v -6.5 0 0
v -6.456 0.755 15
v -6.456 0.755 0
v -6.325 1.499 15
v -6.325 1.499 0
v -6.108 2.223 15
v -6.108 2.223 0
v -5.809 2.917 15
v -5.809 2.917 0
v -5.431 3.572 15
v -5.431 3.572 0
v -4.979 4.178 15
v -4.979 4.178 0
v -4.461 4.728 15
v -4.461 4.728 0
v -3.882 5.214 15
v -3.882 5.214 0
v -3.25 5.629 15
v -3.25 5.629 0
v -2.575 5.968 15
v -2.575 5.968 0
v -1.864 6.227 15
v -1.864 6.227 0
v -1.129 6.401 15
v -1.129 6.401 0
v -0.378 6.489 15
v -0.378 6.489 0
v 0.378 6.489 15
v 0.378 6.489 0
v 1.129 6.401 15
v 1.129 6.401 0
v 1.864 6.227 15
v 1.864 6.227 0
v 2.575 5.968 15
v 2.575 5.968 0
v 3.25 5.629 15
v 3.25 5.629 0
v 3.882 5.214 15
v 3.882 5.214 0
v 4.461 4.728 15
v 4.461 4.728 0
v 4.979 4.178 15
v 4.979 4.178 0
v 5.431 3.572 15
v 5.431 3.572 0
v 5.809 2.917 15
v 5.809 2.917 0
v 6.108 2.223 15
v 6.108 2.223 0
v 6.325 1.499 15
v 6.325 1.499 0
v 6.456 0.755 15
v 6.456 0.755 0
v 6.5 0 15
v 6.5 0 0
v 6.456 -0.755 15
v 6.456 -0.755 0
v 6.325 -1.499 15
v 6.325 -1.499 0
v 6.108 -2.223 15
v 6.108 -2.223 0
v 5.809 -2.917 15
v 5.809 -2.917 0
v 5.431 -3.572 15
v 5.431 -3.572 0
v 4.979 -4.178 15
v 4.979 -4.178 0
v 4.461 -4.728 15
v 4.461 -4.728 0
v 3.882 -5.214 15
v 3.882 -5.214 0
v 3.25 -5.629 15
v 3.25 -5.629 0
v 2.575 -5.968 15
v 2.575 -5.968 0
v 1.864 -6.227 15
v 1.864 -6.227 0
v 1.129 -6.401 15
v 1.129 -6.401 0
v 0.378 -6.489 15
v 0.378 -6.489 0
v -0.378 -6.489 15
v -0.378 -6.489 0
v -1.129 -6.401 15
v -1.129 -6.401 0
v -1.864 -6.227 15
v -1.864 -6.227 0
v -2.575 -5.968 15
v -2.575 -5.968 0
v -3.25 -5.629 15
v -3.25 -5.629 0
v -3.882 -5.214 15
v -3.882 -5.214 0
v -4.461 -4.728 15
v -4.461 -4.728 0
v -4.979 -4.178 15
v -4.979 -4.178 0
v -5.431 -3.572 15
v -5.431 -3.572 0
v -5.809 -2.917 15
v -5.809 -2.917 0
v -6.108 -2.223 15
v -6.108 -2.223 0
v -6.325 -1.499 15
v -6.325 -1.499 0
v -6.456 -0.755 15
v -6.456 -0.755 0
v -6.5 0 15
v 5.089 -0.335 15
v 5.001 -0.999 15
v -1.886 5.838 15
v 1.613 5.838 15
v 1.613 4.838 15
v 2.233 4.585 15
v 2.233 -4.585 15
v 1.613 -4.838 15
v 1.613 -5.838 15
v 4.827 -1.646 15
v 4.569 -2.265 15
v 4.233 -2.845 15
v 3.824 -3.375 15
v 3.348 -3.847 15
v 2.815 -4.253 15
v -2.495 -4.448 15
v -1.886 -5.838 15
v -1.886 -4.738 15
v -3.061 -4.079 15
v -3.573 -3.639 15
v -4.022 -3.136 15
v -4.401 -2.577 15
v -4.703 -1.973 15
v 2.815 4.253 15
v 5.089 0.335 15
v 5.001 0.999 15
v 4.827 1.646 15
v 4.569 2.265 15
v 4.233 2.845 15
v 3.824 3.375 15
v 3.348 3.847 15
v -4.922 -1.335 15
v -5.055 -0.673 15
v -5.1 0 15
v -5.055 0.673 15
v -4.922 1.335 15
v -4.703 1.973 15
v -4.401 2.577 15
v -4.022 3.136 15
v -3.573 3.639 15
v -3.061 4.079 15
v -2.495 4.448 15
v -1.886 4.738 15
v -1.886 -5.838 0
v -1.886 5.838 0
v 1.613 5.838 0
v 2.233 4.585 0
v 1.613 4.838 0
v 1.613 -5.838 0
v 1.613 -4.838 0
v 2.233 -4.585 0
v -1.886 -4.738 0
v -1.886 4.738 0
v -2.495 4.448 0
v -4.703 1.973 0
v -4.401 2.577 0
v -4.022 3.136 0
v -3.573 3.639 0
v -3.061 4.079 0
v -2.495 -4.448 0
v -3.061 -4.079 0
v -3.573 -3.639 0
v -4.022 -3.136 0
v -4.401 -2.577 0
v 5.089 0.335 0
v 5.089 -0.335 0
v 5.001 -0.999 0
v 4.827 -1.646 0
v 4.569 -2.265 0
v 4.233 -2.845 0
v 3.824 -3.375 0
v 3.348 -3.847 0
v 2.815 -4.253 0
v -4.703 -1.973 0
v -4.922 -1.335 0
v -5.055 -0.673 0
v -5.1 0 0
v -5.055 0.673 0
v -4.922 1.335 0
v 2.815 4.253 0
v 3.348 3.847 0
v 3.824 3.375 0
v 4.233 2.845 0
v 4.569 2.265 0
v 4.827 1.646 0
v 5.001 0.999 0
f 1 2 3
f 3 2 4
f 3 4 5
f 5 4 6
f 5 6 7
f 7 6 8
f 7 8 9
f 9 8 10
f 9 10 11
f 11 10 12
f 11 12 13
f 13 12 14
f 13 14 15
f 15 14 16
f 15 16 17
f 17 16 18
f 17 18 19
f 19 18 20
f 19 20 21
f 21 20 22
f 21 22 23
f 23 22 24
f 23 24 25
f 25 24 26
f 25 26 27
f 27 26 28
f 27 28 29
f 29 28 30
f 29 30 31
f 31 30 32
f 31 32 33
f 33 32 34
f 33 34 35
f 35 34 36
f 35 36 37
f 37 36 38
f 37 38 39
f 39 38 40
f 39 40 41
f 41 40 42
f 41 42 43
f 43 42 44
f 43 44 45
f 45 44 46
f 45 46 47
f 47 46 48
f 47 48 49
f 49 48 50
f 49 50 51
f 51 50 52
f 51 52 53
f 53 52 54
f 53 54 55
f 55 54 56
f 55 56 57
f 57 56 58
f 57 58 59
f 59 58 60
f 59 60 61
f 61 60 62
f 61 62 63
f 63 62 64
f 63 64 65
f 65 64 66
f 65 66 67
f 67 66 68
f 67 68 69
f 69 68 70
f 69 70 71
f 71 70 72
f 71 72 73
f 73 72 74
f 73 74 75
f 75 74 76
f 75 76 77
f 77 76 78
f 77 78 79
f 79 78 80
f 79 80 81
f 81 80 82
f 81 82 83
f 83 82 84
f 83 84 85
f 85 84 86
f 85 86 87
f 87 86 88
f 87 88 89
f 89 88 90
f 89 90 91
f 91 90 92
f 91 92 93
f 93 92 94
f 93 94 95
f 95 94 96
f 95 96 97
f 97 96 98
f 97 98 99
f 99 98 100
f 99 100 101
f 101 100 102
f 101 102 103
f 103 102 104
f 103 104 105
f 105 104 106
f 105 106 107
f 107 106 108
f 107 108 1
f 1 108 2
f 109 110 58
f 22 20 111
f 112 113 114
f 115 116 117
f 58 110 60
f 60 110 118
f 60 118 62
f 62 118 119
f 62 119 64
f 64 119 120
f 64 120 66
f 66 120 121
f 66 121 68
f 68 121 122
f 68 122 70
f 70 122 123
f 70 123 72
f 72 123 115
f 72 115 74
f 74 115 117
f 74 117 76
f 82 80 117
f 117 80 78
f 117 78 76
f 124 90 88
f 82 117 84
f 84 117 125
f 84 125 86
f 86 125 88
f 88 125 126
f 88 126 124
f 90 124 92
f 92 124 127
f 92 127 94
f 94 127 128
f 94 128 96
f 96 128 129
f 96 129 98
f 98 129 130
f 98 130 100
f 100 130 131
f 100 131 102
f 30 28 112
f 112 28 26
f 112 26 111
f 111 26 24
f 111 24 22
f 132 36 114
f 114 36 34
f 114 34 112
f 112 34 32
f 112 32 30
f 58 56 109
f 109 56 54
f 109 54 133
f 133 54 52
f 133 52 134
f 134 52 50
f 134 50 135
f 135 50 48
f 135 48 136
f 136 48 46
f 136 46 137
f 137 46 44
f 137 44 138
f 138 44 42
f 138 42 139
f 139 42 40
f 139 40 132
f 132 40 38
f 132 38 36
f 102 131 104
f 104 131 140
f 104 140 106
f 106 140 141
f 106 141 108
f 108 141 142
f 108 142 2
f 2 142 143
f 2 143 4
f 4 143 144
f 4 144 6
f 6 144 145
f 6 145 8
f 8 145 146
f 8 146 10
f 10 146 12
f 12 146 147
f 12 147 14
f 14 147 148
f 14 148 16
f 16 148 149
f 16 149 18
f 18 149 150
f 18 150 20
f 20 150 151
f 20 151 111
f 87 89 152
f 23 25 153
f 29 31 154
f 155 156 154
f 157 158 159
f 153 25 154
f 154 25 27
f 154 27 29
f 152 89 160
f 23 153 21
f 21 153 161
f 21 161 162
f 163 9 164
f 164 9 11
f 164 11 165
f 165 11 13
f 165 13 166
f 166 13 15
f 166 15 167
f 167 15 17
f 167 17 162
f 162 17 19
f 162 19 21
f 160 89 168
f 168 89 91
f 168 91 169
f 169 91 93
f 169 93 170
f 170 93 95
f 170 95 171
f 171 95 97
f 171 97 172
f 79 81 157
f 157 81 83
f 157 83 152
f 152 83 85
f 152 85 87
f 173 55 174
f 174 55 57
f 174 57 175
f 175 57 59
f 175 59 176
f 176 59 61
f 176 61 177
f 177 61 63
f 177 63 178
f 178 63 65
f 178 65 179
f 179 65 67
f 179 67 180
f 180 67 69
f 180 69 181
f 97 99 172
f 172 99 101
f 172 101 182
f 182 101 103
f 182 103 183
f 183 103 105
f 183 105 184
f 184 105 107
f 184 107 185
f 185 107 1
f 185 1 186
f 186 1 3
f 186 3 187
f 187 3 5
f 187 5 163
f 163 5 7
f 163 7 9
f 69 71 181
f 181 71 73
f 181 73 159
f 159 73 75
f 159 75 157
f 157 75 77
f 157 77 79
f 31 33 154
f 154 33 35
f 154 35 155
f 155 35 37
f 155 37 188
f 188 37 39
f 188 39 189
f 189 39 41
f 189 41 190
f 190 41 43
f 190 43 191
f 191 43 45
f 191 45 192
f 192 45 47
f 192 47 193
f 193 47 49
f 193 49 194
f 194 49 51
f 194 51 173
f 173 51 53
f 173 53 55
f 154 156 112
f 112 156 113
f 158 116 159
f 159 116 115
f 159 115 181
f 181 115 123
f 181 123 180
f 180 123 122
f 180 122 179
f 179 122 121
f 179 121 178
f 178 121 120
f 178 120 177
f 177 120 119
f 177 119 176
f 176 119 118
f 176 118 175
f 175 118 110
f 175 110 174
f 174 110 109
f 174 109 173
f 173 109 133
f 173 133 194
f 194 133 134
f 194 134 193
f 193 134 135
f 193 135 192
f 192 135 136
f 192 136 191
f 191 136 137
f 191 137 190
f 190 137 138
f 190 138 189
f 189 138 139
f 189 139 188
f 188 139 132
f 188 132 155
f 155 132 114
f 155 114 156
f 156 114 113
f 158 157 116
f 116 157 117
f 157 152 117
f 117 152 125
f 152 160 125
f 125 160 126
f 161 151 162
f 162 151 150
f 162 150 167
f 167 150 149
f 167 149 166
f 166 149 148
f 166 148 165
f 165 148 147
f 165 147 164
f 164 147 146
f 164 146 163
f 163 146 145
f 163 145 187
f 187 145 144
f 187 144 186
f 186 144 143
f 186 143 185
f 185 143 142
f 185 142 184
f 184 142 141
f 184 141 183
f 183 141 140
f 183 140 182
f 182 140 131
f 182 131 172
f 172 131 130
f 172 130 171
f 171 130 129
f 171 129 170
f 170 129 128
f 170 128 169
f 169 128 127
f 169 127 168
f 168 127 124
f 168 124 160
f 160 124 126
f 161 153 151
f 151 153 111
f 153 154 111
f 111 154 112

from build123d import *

# Parameters (mm, degrees)
SKETCH1_R           = 6.5
BOSS_EXTRUDE1_DEPTH = 15
CUT_EXTRUDE1_DEPTH  = 18.592612086


with BuildPart() as part:
    # Sketch1 → Boss-Extrude1 (new body)
    with BuildSketch(Plane(origin=(0, 0, 0), x_dir=(0, 1, 0), z_dir=(0, 0, 1))):
        with Locations(Location((0, 0, 0), (0, 0, 270))):
            Circle(SKETCH1_R)
    extrude(amount=BOSS_EXTRUDE1_DEPTH)

    # Sketch2 → Cut-Extrude1 (cut, through all)
    with BuildSketch(Plane.XY.offset(15)):
        with BuildLine():
            Line((-1.886299685, 4.738340796), (-1.886299685, 5.838340796))
            Line((-1.886299685, 5.838340796), (1.612593669, 5.838340796))
            Line((1.612593669, 5.838340796), (1.612593669, 4.838340796))
            ThreePointArc((1.612593669, 4.838340796), (5.1, 0), (1.612593669, -4.838340796))
            Line((1.612593669, -4.838340796), (1.612593669, -5.838340796))
            Line((1.612593669, -5.838340796), (-1.886299685, -5.838340796))
            Line((-1.886299685, -5.838340796), (-1.886299685, -4.738340796))
            ThreePointArc((-1.886299685, -4.738340796), (-5.1, 0), (-1.886299685, 4.738340796))
        make_face()
    extrude(amount=-CUT_EXTRUDE1_DEPTH, mode=Mode.SUBTRACT)


solid = part.part
